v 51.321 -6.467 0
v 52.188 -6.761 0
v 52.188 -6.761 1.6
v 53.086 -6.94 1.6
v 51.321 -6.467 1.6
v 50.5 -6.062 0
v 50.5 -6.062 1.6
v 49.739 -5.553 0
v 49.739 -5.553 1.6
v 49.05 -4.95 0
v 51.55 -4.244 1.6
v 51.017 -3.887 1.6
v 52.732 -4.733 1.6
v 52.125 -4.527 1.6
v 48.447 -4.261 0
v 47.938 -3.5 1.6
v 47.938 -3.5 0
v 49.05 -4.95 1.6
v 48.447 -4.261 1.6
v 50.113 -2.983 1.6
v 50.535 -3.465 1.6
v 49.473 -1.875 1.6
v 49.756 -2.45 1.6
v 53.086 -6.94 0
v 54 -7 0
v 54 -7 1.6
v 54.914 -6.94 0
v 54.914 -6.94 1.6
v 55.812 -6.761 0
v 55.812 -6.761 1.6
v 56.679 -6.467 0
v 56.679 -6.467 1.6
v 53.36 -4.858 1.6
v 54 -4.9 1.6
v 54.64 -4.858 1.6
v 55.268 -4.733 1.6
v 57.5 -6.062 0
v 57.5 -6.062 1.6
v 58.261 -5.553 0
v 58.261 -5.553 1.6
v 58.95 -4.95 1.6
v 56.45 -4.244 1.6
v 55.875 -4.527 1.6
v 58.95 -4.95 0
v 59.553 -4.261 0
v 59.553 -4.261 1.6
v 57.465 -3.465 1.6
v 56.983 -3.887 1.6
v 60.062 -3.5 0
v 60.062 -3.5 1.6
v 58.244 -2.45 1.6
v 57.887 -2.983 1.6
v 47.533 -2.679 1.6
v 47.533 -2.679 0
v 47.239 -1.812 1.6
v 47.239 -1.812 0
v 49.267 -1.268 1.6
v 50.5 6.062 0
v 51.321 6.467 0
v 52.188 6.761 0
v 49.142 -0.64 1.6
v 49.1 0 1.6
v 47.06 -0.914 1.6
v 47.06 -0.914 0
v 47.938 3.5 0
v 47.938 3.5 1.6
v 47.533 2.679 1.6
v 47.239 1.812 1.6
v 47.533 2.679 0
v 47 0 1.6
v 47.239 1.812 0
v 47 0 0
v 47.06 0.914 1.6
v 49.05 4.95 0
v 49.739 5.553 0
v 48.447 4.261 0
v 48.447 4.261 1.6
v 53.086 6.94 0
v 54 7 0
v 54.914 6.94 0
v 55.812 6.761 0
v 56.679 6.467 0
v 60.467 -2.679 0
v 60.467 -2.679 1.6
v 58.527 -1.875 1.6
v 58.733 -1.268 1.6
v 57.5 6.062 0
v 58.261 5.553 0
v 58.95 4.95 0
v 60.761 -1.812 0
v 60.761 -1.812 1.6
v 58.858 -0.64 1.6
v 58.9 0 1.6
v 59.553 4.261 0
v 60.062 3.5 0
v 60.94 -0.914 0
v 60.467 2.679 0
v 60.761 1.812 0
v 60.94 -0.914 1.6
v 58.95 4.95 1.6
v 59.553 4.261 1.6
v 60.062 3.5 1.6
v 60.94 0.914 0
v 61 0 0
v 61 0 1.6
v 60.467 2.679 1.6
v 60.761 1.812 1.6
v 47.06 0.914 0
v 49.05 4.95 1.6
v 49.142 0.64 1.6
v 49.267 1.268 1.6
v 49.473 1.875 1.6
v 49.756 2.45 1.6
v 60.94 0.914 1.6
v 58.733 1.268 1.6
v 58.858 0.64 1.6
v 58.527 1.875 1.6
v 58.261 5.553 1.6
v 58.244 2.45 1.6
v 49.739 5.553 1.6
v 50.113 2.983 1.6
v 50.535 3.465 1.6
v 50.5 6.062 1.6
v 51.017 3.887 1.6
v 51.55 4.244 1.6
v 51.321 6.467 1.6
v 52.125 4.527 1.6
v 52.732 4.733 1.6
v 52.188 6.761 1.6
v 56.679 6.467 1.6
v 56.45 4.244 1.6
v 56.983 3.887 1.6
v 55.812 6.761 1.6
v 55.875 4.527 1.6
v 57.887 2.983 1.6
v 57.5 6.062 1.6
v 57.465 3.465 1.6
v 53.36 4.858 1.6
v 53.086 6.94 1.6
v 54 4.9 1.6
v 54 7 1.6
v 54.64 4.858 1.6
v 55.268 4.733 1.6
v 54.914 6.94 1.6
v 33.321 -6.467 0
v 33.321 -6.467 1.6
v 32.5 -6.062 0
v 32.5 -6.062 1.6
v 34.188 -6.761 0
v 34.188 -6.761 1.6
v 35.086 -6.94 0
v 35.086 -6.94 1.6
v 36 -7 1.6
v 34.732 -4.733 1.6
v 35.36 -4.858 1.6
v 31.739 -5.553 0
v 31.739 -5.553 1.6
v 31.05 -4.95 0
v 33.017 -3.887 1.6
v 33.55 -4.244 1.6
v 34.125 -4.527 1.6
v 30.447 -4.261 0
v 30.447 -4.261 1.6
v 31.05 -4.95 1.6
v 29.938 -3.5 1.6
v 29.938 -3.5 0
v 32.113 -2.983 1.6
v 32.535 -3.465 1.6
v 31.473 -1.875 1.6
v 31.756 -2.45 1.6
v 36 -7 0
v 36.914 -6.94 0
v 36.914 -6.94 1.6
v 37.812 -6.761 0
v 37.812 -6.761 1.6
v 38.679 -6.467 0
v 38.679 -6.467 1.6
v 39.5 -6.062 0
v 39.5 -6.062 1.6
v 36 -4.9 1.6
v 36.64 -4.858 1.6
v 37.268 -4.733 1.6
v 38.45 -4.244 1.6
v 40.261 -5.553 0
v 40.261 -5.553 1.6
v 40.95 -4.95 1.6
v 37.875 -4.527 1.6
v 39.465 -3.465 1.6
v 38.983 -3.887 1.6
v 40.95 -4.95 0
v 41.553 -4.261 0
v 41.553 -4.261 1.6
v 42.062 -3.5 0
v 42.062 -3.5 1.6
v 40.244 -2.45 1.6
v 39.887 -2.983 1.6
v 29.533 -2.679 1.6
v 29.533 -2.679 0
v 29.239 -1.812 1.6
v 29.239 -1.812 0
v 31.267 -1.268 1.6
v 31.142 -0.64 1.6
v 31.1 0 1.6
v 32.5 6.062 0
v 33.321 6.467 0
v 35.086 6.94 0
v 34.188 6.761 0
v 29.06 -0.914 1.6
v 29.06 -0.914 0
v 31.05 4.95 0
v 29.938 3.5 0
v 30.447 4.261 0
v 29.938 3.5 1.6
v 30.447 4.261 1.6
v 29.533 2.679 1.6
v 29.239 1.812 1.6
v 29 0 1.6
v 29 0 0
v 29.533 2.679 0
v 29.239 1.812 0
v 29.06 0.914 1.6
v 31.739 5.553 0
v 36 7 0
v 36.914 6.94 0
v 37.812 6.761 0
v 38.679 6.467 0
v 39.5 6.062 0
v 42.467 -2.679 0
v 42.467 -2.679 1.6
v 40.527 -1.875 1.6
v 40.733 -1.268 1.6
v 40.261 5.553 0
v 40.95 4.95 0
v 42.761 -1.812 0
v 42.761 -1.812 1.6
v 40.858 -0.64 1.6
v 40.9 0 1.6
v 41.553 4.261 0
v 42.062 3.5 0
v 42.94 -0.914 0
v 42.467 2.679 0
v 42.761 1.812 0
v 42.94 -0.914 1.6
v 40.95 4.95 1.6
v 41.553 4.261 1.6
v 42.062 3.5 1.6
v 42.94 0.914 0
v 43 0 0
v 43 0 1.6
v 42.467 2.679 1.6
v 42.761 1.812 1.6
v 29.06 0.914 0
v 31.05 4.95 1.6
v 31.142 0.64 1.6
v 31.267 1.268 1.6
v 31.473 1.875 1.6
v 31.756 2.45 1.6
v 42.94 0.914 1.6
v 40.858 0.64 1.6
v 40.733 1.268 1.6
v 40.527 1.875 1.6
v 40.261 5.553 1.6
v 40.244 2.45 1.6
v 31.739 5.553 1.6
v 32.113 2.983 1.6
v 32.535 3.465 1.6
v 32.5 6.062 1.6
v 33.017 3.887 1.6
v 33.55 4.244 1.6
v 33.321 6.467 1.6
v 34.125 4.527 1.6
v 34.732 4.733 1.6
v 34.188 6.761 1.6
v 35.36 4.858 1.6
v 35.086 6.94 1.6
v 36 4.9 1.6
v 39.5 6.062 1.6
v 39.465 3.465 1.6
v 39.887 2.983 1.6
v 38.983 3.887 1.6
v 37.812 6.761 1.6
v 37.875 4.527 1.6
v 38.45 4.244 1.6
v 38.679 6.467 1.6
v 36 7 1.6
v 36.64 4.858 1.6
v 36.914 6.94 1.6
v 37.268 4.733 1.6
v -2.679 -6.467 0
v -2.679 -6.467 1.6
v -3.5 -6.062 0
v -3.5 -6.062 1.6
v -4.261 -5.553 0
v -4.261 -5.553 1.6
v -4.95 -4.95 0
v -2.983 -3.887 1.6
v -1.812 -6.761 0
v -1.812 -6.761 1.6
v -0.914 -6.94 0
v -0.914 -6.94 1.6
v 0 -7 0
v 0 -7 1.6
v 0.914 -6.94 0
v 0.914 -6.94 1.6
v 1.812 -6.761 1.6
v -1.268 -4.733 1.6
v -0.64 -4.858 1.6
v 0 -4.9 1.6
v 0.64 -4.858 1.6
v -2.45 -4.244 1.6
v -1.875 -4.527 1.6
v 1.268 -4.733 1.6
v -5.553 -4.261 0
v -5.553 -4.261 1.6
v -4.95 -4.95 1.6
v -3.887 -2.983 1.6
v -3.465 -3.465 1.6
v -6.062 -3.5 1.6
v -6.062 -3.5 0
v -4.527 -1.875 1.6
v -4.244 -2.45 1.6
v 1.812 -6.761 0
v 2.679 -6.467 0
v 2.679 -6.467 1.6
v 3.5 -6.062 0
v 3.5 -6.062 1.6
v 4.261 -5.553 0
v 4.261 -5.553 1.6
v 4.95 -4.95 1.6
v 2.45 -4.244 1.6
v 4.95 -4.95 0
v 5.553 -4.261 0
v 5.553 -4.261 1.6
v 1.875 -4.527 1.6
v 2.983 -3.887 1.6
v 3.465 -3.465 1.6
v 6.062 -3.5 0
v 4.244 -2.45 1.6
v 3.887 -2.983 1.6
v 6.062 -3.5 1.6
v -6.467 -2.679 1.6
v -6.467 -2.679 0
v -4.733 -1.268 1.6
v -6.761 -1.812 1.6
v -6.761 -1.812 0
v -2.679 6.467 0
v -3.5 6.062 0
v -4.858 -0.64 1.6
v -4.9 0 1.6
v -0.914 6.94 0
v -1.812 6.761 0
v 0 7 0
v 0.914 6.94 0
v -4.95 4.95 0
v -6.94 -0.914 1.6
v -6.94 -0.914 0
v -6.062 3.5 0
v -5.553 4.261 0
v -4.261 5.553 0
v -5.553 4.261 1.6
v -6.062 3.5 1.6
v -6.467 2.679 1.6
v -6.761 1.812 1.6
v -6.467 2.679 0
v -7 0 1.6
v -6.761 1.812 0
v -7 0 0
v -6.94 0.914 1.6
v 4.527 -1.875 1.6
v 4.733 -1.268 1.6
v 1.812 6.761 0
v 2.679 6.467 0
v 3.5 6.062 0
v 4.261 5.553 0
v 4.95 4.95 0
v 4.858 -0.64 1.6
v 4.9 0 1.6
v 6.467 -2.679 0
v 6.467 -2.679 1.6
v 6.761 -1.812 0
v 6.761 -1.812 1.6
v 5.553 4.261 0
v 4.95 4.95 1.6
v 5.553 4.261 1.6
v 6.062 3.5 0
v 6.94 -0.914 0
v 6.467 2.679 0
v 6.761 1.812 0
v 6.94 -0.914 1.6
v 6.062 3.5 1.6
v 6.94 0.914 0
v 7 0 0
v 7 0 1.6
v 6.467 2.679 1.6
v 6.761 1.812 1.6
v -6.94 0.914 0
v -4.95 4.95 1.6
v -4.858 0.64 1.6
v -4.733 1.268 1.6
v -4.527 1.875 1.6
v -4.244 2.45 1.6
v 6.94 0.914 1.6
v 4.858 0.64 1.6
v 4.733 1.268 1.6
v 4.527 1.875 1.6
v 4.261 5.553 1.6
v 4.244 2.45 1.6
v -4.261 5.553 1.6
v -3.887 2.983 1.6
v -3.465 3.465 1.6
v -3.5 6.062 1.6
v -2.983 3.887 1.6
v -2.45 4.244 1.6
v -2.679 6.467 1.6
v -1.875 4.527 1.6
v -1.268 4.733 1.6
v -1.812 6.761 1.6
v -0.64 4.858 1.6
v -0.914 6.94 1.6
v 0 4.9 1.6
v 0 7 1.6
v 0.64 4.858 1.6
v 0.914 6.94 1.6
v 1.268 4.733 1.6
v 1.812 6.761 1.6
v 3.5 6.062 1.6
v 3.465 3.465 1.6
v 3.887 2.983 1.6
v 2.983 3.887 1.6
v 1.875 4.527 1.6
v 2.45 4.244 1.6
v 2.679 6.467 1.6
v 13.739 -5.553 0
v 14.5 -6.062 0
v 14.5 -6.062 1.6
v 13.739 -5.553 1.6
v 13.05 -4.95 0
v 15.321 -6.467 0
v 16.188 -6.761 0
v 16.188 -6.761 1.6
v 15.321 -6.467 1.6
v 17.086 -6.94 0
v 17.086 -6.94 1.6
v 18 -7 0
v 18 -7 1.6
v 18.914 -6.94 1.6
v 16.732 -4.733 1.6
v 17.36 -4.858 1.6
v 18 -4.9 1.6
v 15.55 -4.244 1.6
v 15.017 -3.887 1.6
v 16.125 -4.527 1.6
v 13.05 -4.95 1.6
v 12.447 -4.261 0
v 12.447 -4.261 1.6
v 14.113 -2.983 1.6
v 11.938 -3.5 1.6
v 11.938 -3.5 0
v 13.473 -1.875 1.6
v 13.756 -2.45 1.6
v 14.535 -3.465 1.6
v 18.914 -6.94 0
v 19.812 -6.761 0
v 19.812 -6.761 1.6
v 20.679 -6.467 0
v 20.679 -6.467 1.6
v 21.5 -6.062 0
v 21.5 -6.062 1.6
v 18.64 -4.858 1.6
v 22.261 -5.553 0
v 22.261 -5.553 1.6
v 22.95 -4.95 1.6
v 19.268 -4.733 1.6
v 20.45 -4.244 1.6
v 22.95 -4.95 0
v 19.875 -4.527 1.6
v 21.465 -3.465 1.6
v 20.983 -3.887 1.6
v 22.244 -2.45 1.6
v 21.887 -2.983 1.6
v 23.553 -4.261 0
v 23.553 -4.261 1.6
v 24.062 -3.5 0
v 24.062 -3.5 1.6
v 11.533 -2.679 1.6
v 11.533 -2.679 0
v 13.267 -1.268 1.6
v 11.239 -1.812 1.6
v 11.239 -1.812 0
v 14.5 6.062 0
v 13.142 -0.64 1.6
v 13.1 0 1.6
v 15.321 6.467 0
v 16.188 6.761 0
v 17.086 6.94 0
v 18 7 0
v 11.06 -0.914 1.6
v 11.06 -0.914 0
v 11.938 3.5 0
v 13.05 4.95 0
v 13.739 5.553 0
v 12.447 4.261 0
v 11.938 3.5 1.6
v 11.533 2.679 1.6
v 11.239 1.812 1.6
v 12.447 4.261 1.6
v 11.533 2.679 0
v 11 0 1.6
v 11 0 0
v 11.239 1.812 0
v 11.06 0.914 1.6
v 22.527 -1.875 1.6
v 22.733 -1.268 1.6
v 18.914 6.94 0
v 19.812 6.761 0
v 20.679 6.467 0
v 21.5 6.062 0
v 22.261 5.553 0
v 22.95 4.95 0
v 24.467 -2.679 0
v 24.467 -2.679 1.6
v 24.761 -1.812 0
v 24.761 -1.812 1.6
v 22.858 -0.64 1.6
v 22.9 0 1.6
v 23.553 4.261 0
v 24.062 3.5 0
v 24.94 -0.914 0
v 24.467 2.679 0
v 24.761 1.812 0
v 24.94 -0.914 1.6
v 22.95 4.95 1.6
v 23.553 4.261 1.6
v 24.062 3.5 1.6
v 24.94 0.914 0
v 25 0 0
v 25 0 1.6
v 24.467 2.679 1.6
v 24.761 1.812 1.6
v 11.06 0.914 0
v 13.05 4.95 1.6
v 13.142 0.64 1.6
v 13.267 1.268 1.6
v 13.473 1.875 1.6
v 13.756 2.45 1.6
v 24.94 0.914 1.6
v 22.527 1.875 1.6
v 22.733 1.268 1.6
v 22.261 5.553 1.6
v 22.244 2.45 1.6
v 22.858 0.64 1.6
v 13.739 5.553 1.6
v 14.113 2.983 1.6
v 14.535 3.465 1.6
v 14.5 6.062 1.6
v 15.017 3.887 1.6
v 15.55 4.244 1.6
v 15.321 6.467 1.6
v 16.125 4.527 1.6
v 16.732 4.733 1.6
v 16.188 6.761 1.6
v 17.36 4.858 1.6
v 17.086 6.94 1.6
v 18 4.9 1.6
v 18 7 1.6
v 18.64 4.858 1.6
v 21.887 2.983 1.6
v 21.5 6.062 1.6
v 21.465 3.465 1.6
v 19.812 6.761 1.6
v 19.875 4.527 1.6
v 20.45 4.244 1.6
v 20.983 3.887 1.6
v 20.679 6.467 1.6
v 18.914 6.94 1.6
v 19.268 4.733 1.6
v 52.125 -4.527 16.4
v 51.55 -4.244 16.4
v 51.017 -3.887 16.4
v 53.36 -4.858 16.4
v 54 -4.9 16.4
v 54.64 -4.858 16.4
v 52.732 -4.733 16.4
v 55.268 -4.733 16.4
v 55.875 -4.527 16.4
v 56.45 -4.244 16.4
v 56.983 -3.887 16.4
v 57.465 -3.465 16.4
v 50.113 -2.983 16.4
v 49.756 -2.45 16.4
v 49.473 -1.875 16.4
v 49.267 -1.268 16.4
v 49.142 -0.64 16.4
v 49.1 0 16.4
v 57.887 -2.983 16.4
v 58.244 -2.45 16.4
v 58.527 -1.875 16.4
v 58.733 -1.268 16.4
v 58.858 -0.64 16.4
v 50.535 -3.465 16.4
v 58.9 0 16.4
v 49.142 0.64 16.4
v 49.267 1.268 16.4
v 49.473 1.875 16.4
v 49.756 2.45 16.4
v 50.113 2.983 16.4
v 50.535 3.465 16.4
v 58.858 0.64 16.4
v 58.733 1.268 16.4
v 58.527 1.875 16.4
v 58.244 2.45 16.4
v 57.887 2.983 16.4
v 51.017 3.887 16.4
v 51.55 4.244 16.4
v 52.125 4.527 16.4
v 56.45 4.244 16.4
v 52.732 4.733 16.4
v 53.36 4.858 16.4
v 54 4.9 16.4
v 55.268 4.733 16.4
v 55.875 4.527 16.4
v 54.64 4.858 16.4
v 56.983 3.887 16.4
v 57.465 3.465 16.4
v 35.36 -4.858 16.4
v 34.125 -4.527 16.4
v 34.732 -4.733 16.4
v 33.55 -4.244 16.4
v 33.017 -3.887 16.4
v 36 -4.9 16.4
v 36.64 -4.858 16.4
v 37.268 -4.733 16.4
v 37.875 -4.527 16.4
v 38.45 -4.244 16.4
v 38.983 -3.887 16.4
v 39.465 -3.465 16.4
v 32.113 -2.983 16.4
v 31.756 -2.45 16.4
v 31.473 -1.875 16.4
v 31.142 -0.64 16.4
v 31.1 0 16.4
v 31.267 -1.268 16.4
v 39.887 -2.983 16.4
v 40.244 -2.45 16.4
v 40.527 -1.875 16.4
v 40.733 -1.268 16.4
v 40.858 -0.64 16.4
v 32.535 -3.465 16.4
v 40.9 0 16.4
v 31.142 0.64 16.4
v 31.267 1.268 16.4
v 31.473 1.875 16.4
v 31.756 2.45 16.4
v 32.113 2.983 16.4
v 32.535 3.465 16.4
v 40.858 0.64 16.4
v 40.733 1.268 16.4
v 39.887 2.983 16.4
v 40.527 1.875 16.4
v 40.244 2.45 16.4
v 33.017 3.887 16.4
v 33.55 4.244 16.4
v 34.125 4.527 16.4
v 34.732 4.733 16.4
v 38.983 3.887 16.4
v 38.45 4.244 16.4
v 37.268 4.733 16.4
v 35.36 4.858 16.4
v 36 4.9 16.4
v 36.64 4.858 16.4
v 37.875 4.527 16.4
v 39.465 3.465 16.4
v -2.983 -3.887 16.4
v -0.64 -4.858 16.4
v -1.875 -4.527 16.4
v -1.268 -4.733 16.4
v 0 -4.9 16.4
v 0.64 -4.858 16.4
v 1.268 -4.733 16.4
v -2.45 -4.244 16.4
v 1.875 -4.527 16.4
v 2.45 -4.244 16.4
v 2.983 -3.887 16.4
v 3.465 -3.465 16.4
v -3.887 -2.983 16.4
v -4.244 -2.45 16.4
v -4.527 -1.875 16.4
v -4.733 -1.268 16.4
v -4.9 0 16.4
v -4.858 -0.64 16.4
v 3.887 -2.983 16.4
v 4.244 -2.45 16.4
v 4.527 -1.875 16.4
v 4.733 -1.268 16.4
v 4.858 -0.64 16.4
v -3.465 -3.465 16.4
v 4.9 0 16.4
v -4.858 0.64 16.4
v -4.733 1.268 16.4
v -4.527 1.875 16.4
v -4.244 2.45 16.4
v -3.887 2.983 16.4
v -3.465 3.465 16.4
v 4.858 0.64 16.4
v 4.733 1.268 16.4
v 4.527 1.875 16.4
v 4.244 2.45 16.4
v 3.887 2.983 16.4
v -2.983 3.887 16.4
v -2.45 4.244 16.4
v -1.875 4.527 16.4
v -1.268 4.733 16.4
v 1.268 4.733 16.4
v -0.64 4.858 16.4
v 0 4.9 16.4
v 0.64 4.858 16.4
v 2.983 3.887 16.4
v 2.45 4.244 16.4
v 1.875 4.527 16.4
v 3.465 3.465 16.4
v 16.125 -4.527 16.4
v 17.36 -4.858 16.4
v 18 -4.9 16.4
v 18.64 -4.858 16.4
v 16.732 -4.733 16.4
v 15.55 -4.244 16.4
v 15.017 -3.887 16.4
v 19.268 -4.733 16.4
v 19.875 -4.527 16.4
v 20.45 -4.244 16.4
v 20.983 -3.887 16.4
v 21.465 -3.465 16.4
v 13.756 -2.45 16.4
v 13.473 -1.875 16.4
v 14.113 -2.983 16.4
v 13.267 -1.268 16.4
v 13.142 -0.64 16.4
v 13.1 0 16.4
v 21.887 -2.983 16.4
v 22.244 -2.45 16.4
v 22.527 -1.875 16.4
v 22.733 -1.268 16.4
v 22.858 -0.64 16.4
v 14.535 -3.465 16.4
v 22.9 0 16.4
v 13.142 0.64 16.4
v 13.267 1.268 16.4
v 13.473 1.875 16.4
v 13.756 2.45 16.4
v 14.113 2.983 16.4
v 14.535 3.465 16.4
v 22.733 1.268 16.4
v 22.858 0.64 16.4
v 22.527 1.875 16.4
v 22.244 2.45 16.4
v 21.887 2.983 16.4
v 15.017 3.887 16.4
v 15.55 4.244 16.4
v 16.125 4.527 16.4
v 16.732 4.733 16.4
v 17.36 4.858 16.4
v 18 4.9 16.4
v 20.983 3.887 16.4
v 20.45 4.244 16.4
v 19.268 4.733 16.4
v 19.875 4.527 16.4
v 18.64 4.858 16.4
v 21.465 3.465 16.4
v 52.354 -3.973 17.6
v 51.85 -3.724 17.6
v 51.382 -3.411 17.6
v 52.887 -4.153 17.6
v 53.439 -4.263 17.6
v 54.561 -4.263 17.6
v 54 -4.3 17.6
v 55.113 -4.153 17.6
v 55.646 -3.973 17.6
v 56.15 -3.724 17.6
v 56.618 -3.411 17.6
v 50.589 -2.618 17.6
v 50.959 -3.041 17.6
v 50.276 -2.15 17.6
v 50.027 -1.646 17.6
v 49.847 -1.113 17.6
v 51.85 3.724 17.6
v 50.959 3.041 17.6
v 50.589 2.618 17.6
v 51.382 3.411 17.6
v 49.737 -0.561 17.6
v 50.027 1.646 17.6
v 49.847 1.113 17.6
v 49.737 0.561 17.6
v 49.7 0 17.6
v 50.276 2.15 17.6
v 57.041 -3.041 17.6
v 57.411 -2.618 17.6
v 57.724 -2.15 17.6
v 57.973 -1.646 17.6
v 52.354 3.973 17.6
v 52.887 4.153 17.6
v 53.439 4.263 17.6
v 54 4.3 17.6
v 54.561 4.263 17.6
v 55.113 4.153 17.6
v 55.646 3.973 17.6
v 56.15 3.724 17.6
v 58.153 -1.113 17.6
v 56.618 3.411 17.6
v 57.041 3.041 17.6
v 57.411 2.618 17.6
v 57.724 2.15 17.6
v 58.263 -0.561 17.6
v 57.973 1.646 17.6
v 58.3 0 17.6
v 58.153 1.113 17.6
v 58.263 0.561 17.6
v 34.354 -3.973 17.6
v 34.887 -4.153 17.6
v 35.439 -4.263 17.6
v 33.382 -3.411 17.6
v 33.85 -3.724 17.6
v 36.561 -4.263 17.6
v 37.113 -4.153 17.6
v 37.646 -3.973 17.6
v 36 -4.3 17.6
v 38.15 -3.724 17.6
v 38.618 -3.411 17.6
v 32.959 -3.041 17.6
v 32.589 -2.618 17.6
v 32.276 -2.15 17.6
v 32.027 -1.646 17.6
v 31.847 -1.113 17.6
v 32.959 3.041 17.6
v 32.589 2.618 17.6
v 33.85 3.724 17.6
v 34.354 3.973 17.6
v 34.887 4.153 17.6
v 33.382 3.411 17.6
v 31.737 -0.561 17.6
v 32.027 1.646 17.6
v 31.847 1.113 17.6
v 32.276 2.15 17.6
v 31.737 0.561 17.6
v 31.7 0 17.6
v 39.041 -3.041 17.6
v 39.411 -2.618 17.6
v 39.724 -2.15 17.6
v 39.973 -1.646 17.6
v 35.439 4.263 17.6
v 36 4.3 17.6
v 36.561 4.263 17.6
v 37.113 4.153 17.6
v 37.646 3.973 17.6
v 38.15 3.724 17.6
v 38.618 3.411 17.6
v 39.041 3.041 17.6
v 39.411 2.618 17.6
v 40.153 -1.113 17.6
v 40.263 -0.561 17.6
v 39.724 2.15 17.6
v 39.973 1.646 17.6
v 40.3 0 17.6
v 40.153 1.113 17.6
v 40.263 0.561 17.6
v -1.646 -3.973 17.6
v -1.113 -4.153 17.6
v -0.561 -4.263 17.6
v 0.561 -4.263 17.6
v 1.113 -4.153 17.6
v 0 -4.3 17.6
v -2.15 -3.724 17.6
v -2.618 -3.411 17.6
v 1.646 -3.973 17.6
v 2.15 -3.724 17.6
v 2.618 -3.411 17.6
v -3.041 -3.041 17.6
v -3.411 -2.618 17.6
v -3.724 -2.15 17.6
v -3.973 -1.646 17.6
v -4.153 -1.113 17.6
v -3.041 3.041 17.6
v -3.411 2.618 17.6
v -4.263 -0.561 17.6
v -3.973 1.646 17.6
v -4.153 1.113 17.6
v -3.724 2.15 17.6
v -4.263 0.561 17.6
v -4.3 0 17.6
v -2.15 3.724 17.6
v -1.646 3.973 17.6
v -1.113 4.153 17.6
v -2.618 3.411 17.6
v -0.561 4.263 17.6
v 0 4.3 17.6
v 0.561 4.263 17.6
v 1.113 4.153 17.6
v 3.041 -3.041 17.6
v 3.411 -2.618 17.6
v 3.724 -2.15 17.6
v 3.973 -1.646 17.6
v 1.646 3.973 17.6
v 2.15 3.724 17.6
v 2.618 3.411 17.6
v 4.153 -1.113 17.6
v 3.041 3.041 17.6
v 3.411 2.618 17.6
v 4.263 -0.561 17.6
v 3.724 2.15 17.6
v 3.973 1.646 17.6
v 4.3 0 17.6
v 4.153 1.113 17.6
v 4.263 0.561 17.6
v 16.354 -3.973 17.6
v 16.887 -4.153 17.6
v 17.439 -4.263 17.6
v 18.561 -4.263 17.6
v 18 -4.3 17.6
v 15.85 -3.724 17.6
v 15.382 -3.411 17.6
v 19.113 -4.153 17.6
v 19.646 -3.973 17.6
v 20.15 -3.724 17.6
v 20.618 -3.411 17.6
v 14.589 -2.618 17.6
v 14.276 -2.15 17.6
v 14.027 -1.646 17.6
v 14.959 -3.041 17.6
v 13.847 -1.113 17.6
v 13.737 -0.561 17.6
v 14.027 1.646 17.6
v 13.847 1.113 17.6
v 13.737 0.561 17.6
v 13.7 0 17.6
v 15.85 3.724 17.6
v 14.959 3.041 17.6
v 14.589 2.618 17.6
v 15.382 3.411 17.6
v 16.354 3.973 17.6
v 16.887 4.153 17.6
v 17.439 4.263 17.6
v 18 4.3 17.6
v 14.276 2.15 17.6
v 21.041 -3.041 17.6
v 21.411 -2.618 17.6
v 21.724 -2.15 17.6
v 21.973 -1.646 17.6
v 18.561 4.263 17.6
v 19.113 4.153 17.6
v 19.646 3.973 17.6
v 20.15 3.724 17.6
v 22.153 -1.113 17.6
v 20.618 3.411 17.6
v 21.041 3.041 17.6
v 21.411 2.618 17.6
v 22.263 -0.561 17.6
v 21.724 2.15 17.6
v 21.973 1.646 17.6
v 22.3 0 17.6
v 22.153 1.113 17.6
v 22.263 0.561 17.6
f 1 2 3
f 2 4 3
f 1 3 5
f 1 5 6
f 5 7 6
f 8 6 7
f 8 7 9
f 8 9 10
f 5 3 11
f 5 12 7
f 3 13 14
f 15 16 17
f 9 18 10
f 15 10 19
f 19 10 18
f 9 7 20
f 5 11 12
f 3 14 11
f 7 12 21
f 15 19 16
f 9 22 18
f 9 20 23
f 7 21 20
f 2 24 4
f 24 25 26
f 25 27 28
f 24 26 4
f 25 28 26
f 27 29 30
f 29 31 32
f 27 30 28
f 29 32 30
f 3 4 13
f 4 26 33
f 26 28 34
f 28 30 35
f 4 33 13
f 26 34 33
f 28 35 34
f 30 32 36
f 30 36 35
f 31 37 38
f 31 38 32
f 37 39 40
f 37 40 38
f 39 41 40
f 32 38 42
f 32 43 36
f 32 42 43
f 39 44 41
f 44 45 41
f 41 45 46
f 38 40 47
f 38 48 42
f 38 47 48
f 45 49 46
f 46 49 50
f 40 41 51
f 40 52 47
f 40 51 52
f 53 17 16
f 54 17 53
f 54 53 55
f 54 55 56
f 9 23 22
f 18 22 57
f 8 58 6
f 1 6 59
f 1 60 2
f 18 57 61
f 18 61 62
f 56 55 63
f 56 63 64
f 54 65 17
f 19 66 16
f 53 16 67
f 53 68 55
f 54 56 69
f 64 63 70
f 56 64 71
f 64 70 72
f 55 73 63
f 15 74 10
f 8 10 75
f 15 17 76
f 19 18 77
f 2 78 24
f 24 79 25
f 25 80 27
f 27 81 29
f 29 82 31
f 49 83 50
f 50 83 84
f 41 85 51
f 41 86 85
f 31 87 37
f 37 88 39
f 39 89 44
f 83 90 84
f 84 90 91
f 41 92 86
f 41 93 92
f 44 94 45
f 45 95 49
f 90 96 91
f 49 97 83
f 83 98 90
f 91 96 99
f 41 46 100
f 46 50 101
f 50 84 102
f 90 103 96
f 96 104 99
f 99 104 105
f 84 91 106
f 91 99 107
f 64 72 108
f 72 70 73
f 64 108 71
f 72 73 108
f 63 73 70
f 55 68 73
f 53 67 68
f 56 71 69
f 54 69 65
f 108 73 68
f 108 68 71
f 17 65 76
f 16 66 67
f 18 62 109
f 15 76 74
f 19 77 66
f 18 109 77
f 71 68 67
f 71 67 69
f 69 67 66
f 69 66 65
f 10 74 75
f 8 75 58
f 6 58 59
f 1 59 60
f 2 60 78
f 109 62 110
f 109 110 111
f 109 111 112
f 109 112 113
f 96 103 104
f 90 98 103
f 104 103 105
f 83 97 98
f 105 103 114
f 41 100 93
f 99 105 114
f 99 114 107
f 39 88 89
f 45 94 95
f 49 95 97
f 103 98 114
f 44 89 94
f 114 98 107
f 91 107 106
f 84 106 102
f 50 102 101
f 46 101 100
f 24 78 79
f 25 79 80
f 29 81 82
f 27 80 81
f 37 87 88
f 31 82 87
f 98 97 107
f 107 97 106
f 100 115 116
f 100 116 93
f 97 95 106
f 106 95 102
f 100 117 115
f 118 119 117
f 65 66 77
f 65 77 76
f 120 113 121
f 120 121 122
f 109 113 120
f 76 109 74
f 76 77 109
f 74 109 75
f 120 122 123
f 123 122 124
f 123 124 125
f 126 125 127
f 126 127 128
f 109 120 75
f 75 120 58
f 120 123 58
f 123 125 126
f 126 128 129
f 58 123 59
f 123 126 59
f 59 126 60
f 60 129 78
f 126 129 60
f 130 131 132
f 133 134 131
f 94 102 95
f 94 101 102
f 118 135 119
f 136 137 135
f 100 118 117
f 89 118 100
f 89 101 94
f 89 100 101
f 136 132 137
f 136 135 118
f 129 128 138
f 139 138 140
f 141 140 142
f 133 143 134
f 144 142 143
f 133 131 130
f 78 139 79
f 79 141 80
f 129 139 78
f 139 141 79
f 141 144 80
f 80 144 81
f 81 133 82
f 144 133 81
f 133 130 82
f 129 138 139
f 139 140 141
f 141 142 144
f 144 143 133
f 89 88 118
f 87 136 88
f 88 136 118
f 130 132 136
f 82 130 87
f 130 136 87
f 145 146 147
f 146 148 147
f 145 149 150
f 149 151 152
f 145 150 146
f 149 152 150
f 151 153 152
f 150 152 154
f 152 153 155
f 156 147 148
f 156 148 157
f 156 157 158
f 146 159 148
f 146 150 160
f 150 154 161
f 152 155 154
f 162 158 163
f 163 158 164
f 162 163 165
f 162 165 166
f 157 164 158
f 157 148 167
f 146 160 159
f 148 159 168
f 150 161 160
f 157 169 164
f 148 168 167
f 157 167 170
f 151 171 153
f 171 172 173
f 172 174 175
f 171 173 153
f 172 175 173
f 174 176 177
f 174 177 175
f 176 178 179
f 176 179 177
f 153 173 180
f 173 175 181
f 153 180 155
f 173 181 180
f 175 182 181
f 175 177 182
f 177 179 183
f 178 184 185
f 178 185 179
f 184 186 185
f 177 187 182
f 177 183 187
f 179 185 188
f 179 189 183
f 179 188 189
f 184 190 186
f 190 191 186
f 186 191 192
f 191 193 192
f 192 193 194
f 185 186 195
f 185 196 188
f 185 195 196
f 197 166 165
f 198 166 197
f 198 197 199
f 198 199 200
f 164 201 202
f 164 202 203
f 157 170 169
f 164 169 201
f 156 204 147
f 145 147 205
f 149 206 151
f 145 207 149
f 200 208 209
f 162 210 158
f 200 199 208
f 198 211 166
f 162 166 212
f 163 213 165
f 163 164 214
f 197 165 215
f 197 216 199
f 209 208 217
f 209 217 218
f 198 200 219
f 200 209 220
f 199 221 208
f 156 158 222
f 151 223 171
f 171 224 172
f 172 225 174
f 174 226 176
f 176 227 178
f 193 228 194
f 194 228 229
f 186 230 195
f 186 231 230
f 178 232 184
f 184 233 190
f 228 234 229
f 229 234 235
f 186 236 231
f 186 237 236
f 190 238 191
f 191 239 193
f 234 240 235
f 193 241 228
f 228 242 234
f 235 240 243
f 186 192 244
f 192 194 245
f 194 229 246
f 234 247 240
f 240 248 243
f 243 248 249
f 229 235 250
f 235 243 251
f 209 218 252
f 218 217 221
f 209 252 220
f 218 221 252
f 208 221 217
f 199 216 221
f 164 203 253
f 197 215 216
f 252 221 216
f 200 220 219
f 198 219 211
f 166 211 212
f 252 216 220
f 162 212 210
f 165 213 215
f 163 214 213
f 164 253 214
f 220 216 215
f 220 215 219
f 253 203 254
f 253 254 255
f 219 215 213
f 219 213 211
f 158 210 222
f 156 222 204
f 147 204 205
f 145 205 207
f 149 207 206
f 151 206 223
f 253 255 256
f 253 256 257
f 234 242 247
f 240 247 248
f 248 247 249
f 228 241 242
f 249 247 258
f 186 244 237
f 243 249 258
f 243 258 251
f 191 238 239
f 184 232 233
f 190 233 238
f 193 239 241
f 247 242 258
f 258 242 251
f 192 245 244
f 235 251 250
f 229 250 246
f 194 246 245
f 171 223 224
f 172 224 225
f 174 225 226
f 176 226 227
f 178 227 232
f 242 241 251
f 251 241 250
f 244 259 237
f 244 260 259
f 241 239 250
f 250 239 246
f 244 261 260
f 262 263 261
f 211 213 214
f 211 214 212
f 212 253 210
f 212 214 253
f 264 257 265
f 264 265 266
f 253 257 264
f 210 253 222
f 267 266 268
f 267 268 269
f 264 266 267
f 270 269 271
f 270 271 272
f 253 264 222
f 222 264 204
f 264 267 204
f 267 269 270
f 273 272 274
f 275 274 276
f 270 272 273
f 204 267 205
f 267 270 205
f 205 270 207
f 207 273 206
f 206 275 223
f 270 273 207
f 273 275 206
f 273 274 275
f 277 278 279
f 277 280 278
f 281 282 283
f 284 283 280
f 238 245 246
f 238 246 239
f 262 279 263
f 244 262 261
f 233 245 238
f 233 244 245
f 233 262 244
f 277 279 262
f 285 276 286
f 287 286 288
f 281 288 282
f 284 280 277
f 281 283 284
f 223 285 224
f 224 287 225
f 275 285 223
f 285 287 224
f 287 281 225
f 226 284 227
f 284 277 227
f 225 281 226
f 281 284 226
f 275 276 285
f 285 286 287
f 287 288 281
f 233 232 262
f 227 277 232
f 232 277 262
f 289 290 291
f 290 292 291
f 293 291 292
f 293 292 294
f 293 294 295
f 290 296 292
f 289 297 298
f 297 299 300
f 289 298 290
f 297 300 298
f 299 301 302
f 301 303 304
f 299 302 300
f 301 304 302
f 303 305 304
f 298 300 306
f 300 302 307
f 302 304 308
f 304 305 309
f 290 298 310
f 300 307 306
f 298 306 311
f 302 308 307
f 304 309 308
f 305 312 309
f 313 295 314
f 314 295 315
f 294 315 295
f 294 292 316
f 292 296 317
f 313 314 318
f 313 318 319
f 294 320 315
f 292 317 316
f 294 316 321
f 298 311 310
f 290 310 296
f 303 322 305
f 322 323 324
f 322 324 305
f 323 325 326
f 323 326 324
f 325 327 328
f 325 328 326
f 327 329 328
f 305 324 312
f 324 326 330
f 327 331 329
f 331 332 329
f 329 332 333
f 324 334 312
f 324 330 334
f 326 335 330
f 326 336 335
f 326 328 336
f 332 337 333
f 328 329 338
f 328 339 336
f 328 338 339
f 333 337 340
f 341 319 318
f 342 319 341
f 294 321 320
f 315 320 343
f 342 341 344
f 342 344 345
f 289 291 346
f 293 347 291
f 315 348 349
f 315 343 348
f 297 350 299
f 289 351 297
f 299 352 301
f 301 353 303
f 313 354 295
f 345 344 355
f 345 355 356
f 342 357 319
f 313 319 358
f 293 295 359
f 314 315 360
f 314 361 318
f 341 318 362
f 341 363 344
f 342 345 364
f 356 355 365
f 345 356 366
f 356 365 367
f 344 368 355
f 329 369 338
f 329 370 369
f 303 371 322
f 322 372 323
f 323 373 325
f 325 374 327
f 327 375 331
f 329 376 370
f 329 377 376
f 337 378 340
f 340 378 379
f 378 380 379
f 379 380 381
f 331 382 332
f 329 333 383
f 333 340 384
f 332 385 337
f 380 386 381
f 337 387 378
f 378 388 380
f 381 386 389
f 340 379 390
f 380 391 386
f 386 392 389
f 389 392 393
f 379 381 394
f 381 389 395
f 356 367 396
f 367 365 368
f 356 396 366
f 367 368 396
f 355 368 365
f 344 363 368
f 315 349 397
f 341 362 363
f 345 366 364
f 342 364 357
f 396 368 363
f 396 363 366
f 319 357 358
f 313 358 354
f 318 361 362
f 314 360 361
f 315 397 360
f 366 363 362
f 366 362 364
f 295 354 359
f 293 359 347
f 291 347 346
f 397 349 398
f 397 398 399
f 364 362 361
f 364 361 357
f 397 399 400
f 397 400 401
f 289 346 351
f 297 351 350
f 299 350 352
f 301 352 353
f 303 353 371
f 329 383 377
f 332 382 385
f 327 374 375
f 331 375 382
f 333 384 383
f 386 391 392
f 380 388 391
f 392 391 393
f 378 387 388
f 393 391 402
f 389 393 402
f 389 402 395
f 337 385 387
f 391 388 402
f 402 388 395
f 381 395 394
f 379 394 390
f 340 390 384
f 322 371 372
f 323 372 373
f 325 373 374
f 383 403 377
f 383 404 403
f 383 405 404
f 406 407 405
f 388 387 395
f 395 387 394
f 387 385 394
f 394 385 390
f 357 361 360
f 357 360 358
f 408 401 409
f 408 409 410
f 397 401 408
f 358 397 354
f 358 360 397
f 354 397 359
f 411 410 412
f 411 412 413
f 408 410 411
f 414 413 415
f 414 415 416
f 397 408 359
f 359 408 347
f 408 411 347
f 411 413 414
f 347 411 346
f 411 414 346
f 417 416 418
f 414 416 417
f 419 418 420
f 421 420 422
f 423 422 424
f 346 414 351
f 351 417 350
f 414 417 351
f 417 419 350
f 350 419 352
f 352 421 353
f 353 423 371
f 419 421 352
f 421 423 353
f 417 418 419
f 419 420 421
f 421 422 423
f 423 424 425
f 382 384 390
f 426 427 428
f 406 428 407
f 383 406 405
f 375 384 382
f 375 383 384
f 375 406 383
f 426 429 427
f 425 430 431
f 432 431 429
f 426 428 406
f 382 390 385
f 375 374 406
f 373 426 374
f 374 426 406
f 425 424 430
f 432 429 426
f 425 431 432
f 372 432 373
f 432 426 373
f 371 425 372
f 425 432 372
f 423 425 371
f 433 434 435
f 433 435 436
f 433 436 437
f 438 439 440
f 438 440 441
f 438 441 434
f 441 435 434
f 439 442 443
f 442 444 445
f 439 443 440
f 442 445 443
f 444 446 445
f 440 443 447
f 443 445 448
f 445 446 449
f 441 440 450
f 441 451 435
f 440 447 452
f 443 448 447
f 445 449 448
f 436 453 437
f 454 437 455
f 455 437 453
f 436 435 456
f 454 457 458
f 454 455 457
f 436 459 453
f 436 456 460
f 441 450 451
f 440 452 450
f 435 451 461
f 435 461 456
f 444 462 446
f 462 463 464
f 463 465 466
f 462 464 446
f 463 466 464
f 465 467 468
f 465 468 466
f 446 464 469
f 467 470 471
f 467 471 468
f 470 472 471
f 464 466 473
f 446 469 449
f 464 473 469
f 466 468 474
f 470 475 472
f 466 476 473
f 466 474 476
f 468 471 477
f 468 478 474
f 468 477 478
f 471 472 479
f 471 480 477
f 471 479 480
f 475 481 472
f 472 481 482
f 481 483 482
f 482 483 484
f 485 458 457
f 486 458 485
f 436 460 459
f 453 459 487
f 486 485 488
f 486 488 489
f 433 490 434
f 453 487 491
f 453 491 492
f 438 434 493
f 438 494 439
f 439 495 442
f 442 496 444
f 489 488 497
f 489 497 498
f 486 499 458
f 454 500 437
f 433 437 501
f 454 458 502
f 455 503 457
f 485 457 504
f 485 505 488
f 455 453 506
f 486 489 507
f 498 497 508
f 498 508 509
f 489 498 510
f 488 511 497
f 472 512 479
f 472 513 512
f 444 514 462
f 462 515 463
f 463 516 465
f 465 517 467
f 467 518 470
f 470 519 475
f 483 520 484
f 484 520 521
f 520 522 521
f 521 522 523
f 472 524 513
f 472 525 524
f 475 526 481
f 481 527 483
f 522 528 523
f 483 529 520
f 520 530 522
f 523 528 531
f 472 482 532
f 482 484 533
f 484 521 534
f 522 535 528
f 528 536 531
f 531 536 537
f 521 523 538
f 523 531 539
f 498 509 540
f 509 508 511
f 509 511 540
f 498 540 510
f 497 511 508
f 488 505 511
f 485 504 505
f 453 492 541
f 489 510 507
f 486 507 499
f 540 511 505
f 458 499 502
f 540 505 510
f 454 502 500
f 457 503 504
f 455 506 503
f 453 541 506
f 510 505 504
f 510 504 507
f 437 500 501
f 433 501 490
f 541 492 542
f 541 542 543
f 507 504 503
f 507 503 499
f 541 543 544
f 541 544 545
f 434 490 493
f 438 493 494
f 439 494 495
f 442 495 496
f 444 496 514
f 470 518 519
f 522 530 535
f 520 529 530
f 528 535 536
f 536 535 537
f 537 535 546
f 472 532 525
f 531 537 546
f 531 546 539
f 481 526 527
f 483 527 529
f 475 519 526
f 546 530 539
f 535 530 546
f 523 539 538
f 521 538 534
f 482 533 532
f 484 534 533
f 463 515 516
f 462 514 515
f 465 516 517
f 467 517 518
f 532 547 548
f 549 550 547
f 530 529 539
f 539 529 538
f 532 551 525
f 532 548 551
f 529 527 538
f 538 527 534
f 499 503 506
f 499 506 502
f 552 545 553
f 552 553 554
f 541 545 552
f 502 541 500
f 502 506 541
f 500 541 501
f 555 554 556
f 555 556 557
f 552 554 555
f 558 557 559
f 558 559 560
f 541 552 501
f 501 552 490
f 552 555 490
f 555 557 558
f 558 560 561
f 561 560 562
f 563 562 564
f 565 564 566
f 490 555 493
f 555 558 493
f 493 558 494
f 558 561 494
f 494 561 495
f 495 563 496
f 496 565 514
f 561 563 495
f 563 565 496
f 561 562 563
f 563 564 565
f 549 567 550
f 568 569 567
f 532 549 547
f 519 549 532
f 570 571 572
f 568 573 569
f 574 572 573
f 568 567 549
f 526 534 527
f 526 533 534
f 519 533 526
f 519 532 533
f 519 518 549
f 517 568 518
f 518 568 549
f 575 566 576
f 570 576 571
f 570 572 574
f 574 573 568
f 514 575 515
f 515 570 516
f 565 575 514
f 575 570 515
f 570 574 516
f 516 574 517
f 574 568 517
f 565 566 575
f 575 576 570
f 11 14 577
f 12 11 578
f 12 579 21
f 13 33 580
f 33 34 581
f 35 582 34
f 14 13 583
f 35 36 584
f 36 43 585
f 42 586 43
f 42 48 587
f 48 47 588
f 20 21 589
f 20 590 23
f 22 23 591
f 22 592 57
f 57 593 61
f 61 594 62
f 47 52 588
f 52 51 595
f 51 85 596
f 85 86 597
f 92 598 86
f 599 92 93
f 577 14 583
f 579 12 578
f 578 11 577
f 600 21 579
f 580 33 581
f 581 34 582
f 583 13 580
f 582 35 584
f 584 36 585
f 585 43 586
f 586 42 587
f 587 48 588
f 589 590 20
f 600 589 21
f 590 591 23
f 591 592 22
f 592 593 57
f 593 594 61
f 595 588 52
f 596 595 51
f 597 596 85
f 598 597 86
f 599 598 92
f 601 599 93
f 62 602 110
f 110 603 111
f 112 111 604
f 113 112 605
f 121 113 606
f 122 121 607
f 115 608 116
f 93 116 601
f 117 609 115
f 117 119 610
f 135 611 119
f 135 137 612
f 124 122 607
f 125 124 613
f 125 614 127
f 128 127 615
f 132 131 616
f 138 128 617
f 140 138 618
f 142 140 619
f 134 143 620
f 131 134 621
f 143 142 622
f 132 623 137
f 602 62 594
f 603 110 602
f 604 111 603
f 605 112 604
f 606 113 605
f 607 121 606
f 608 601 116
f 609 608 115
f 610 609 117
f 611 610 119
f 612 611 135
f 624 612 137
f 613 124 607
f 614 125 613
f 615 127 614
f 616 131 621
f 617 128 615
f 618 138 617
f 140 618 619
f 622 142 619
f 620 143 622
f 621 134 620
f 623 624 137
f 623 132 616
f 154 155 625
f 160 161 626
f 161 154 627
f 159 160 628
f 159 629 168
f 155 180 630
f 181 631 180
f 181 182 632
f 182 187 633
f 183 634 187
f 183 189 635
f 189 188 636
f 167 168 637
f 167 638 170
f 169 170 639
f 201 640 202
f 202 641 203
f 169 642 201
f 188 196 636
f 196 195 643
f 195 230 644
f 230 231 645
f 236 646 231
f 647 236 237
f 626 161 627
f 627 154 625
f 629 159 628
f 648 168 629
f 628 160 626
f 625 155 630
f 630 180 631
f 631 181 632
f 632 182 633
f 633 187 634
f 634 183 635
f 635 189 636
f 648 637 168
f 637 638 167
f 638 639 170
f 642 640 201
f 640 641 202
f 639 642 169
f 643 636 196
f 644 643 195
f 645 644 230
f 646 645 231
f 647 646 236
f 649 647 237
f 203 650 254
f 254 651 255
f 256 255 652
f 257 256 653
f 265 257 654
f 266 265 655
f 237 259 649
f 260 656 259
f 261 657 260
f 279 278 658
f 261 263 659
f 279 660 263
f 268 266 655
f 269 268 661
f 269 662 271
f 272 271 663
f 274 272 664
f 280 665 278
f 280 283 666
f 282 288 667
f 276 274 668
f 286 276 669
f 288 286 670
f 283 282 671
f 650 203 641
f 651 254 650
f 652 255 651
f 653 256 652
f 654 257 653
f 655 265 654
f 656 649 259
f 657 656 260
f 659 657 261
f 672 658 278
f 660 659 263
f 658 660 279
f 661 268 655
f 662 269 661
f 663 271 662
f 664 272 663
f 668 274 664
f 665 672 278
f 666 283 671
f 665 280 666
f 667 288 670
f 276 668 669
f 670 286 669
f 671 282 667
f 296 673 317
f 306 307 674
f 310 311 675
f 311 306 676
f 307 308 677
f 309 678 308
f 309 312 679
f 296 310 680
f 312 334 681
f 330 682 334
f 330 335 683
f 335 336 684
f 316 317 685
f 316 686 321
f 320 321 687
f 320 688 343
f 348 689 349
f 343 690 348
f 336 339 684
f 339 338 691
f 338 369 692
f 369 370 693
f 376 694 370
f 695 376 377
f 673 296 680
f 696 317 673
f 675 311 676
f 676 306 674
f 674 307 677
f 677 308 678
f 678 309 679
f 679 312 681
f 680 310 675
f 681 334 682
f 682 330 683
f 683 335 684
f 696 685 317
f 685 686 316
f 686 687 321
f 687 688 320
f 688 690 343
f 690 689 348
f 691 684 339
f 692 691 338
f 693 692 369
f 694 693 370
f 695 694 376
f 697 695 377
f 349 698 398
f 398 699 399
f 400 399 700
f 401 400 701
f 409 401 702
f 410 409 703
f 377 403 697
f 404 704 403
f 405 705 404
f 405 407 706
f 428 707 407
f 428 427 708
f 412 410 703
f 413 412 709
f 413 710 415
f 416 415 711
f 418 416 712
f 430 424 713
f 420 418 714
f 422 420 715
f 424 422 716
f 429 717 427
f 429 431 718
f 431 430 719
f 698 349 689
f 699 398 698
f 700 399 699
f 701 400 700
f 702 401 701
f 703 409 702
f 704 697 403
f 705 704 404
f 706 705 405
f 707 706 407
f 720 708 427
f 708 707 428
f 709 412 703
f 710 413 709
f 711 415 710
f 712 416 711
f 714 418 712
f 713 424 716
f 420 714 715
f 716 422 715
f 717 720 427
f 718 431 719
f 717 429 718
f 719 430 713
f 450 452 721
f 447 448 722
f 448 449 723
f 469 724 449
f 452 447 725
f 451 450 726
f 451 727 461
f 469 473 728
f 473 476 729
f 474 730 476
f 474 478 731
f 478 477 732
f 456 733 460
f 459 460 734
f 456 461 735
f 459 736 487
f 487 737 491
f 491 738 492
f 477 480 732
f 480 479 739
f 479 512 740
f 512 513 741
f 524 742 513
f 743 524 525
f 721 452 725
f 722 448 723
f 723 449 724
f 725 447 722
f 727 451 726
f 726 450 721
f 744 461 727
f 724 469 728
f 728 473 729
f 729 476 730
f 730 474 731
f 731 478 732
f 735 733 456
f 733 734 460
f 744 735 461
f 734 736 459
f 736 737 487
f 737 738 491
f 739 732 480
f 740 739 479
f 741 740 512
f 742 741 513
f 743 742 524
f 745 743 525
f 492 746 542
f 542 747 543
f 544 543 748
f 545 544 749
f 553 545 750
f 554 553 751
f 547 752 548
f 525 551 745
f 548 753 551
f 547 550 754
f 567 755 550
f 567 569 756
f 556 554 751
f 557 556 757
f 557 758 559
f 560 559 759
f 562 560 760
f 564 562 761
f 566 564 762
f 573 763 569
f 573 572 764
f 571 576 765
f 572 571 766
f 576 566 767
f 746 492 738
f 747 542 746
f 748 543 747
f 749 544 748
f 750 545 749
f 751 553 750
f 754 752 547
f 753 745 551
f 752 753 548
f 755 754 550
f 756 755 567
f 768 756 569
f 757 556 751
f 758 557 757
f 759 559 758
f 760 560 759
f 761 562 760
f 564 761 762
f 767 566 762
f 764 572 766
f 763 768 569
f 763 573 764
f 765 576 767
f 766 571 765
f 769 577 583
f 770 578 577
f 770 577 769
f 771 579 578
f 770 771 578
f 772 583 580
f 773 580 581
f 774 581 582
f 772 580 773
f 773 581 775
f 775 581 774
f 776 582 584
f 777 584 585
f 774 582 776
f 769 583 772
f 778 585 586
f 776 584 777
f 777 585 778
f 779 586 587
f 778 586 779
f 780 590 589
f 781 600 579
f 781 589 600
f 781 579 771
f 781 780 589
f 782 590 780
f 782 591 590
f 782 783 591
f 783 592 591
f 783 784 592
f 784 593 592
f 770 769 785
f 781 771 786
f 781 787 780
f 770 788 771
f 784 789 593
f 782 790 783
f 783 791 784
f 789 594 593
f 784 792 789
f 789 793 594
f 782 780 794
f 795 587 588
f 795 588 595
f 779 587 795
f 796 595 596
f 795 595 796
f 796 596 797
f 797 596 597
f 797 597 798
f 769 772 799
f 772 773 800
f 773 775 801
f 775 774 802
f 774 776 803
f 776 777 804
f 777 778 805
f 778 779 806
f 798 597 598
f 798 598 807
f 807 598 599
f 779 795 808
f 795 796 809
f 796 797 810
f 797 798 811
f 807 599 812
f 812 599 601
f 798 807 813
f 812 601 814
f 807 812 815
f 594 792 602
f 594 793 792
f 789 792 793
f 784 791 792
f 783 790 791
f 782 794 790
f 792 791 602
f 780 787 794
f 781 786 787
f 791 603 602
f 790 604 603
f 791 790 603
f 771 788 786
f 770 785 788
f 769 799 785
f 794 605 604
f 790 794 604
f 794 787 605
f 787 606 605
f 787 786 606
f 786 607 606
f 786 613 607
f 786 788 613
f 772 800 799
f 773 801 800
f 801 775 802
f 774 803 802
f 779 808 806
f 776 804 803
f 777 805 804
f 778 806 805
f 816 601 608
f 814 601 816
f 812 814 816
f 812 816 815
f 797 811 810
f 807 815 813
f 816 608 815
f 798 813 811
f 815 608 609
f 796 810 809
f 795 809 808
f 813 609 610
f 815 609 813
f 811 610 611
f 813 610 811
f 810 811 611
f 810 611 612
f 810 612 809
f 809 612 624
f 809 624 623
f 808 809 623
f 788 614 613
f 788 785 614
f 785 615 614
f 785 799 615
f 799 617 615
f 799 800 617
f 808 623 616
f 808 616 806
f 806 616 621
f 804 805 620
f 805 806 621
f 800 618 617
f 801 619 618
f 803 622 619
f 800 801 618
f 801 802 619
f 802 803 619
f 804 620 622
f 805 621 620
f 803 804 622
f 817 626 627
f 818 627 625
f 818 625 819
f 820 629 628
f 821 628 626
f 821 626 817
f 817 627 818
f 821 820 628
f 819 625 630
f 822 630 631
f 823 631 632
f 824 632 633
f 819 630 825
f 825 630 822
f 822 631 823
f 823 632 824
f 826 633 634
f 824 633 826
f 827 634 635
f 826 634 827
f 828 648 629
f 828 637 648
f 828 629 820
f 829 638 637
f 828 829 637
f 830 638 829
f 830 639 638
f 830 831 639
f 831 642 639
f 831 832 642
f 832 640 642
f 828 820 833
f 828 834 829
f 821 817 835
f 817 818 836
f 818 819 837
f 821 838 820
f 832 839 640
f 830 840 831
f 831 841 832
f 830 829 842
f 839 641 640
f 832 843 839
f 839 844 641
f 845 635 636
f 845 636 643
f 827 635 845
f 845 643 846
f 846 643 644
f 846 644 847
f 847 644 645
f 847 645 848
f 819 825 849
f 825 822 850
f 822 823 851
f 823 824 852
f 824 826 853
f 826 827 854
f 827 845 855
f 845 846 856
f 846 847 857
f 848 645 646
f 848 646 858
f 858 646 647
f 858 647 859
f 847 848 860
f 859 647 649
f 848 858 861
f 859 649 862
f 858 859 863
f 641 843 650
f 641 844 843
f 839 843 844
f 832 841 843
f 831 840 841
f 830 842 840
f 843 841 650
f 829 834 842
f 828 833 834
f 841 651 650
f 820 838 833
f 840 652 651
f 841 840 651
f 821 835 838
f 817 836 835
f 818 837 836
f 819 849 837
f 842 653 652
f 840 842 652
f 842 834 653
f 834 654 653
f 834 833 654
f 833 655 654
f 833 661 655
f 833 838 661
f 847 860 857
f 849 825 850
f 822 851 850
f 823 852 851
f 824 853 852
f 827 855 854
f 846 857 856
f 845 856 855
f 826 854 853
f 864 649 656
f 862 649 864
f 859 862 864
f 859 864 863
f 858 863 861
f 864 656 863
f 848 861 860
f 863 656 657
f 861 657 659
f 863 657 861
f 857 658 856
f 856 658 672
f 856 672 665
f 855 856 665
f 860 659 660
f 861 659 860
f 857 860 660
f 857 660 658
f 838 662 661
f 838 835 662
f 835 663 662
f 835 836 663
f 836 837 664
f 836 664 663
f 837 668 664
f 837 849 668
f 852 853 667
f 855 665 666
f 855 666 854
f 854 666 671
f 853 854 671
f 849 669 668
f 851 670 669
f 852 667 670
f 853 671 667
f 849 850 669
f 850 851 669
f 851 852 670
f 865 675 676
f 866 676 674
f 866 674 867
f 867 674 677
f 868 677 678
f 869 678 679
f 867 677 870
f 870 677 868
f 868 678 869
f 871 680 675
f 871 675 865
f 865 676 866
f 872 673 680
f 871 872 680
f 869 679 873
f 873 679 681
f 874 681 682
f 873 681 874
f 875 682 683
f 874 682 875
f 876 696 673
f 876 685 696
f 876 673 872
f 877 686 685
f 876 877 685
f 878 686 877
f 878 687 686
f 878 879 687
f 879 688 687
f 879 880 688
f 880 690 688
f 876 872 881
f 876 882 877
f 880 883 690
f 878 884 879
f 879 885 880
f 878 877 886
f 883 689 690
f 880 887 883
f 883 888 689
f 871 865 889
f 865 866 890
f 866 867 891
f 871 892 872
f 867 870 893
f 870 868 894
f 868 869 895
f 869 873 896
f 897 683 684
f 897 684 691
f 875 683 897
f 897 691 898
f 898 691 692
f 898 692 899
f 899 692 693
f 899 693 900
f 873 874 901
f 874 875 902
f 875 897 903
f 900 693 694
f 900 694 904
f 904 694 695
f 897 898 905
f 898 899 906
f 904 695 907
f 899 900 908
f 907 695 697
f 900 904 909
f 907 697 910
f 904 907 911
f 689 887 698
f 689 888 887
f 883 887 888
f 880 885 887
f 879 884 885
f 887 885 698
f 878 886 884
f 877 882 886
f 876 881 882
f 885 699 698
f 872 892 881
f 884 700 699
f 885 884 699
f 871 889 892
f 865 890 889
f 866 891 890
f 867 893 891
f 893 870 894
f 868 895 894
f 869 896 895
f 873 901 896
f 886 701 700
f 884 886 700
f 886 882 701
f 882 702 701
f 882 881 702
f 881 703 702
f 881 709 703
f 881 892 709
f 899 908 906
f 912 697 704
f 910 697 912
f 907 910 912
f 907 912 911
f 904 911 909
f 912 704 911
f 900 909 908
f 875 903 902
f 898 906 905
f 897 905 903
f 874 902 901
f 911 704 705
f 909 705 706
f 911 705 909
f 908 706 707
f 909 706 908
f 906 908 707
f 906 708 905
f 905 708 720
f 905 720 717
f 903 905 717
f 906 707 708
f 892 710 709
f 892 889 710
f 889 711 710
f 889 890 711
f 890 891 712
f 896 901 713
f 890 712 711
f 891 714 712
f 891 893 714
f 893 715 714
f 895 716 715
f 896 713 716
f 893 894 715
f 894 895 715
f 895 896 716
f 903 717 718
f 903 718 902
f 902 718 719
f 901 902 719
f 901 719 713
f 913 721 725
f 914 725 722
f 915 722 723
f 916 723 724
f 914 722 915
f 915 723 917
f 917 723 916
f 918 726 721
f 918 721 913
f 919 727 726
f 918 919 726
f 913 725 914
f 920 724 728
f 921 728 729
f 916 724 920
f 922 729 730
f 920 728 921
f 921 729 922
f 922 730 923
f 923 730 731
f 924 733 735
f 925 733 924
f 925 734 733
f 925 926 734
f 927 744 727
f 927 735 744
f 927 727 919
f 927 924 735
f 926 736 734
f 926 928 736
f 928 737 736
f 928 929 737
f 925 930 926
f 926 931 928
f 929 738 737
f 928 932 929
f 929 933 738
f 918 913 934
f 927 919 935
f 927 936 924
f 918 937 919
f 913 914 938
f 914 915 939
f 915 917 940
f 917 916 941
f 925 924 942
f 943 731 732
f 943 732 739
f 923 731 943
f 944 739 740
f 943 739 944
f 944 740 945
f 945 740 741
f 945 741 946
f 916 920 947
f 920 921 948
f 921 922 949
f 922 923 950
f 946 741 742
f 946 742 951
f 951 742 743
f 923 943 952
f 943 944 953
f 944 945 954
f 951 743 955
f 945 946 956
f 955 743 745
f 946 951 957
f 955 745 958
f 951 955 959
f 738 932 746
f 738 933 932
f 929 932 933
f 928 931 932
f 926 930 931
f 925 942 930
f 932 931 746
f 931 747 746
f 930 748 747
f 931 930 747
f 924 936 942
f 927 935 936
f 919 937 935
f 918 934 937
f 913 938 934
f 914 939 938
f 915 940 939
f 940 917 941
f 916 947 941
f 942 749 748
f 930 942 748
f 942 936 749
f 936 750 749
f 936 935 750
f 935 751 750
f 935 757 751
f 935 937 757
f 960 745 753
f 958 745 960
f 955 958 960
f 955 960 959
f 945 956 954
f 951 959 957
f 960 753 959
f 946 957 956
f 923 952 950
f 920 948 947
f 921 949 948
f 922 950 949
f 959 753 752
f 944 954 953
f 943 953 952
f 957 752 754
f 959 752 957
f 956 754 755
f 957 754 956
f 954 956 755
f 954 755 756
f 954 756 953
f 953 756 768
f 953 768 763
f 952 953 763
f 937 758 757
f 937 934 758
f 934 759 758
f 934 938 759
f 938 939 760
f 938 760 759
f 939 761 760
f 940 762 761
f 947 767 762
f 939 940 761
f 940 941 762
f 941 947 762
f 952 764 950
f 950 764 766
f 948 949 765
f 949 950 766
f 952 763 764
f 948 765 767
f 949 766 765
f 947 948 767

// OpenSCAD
// file: params.scad
// V3 shared customizer settings. Dimensions are millimetres.

// Board hole pattern
hole_d = 10;             // [3:0.1:30] Finished hole / twist-bit diameter
grid_pitch = 50;         // [15:0.1:100] Centre-to-centre hole spacing
edge_offset = 25;        // [0:0.1:100] First hole centre from both board edges
board_cols = 10;         // [1:1:100] Number of holes across the board
board_rows = 10;         // [1:1:100] Number of holes down the board
panel_t = 18;            // [3:0.1:50] Board thickness

// A1 mini print envelope
build_x = 180;
build_y = 180;
bed_edge_clearance = 3;  // Keep the part this far from each bed edge

// Twist-drill guide and bushing
bush_od = 12;            // Metal guide bush outside diameter
bush_id = 10;            // Metal guide bush inside diameter; match the bit
bush_seat_d = 11.9;      // Printed press-fit socket; tune with a test coupon
bush_seat_h = 8;
bit_clearance = 0.4;     // Clearance below the metal bush
pin_clearance = 0.2;     // Locating pin undersize relative to the drilled hole
bit_clear_d = hole_d + bit_clearance;

// Shared body dimensions
base_t = 6;
boss_wall = 4;            // Plastic wall around the bush seat
boss_d = max(max(bush_od, bush_seat_d), bit_clear_d) + 2 * boss_wall;
boss_h = 8;
rib_w = 8;
border_w = 8;
$fn = 48;
pin_len = 10;
pin_chamfer_h = 1.2;
pin_chamfer_radial = 0.6;
pin_mount_clearance = 0.25; // Bore allowance around each removable pin stem
pin_head_d = 14;
pin_head_h = 1.6;
pin_head_recess_clearance = 0.3;
pin_pad_d = 18;
pin_set_spacing = 18;

// The indexing tile keeps a 2x2 pin pattern and uses every remaining
// grid station as a drill guide. The default 4x4 tile gives 12 guides.
index_cols = 4;           // [3:1:8] Grid stations across the indexing tile
index_rows = 4;           // [3:1:8] Grid stations down the indexing tile

// Corner starter joint. The fence is a separate printable piece that mates
// with the plate; together they are the corner-starter tool.
clamp_hole_d = 6;
clamp_gap = 25;
edge_margin = 15;
fence_t = 4;
fence_top = 8;
notch_d = 6;
notch_w = 10;
tab_d = 5.5;
tab_w = 8;
tab_t = 4.4;
tab_z = 0.8;
tab_fractions = [0.28, 0.72];

// Derived dimensions and point lists
pin_d = hole_d - pin_clearance;
pin_mount_d = pin_d + pin_mount_clearance;
pin_head_recess_d = pin_head_d + pin_head_recess_clearance;
seed_x = [edge_offset, edge_offset + grid_pitch];
seed_y = [edge_offset, edge_offset + grid_pitch];
seed_points = [for (x = seed_x, y = seed_y) [x, y]];
index_pin_points = [[0, 0], [grid_pitch, 0], [0, grid_pitch], [grid_pitch, grid_pitch]];
index_guide_points = [
    for (ix = [0 : index_cols - 1], iy = [0 : index_rows - 1])
        if (!(ix < 2 && iy < 2)) [ix * grid_pitch, iy * grid_pitch]
];
index_x0 = -boss_d / 2;
index_y0 = -boss_d / 2;
index_x1 = (index_cols - 1) * grid_pitch + boss_d / 2;
index_y1 = (index_rows - 1) * grid_pitch + boss_d / 2;
index_size_x = index_x1 - index_x0;
index_size_y = index_y1 - index_y0;
index_guide_count = len(index_guide_points);

starter_last_x = edge_offset + grid_pitch;
starter_last_y = edge_offset + grid_pitch;
starter_clamp_x = starter_last_x + clamp_gap;
starter_clamp_y = starter_last_y + clamp_gap;
starter_reach = max(starter_clamp_x, starter_clamp_y) + edge_margin;
starter_tab_positions = [for (f = tab_fractions) f * starter_reach];

assert(hole_d > pin_clearance, "Hole diameter must exceed pin clearance.");
assert(pin_mount_d > pin_d, "Pin mounting bore must allow a printable fit.");
assert(pin_head_recess_d < pin_pad_d, "Pin-head pocket needs material around it.");
assert(bush_id >= hole_d, "Choose a guide bush ID that fits the selected drill bit.");
assert(bush_seat_d > bush_id, "Bush seat must be larger than the bush bore.");
assert(bush_seat_d < bush_od + 0.6, "Bush seat fit is unusually loose; check the bush OD.");
assert(boss_h >= bush_seat_h, "Bush seat cannot be deeper than the guide boss.");
assert(grid_pitch >= boss_d + 2, "Grid pitch is too tight for the guide bosses.");
assert(index_cols >= 3 && index_rows >= 3, "Indexing tile needs at least 3x3 stations.");
assert(index_size_x <= build_x - 2 * bed_edge_clearance,
       str("Indexing tile is too wide for the selected bed: ", index_size_x, " mm."));
assert(index_size_y <= build_y - 2 * bed_edge_clearance,
       str("Indexing tile is too deep for the selected bed: ", index_size_y, " mm."));
assert(starter_reach <= build_x && starter_reach <= build_y,
       "Corner starter plate exceeds the selected printer bed.");
assert(board_cols >= 2 && board_rows >= 2, "Board must have at least a 2x2 hole grid.");
// main file
// V3 INDEXING PIN SET
// Print four loose copies in one batch. Flip each pin before installing it
// so its small chamfered end points down from the indexing tile.
include <params.scad>

module indexing_pin() {
    cylinder(d = pin_head_d, h = pin_head_h);
    translate([0, 0, pin_head_h])
        cylinder(d = pin_d,
                 h = base_t + pin_len - pin_chamfer_h);
    translate([0, 0, pin_head_h + base_t + pin_len - pin_chamfer_h])
        cylinder(d1 = pin_d,
                 d2 = pin_d - 2 * pin_chamfer_radial,
                 h = pin_chamfer_h);
}

for (i = [0 : 3])
    translate([i * pin_set_spacing, 0, 0]) indexing_pin();
